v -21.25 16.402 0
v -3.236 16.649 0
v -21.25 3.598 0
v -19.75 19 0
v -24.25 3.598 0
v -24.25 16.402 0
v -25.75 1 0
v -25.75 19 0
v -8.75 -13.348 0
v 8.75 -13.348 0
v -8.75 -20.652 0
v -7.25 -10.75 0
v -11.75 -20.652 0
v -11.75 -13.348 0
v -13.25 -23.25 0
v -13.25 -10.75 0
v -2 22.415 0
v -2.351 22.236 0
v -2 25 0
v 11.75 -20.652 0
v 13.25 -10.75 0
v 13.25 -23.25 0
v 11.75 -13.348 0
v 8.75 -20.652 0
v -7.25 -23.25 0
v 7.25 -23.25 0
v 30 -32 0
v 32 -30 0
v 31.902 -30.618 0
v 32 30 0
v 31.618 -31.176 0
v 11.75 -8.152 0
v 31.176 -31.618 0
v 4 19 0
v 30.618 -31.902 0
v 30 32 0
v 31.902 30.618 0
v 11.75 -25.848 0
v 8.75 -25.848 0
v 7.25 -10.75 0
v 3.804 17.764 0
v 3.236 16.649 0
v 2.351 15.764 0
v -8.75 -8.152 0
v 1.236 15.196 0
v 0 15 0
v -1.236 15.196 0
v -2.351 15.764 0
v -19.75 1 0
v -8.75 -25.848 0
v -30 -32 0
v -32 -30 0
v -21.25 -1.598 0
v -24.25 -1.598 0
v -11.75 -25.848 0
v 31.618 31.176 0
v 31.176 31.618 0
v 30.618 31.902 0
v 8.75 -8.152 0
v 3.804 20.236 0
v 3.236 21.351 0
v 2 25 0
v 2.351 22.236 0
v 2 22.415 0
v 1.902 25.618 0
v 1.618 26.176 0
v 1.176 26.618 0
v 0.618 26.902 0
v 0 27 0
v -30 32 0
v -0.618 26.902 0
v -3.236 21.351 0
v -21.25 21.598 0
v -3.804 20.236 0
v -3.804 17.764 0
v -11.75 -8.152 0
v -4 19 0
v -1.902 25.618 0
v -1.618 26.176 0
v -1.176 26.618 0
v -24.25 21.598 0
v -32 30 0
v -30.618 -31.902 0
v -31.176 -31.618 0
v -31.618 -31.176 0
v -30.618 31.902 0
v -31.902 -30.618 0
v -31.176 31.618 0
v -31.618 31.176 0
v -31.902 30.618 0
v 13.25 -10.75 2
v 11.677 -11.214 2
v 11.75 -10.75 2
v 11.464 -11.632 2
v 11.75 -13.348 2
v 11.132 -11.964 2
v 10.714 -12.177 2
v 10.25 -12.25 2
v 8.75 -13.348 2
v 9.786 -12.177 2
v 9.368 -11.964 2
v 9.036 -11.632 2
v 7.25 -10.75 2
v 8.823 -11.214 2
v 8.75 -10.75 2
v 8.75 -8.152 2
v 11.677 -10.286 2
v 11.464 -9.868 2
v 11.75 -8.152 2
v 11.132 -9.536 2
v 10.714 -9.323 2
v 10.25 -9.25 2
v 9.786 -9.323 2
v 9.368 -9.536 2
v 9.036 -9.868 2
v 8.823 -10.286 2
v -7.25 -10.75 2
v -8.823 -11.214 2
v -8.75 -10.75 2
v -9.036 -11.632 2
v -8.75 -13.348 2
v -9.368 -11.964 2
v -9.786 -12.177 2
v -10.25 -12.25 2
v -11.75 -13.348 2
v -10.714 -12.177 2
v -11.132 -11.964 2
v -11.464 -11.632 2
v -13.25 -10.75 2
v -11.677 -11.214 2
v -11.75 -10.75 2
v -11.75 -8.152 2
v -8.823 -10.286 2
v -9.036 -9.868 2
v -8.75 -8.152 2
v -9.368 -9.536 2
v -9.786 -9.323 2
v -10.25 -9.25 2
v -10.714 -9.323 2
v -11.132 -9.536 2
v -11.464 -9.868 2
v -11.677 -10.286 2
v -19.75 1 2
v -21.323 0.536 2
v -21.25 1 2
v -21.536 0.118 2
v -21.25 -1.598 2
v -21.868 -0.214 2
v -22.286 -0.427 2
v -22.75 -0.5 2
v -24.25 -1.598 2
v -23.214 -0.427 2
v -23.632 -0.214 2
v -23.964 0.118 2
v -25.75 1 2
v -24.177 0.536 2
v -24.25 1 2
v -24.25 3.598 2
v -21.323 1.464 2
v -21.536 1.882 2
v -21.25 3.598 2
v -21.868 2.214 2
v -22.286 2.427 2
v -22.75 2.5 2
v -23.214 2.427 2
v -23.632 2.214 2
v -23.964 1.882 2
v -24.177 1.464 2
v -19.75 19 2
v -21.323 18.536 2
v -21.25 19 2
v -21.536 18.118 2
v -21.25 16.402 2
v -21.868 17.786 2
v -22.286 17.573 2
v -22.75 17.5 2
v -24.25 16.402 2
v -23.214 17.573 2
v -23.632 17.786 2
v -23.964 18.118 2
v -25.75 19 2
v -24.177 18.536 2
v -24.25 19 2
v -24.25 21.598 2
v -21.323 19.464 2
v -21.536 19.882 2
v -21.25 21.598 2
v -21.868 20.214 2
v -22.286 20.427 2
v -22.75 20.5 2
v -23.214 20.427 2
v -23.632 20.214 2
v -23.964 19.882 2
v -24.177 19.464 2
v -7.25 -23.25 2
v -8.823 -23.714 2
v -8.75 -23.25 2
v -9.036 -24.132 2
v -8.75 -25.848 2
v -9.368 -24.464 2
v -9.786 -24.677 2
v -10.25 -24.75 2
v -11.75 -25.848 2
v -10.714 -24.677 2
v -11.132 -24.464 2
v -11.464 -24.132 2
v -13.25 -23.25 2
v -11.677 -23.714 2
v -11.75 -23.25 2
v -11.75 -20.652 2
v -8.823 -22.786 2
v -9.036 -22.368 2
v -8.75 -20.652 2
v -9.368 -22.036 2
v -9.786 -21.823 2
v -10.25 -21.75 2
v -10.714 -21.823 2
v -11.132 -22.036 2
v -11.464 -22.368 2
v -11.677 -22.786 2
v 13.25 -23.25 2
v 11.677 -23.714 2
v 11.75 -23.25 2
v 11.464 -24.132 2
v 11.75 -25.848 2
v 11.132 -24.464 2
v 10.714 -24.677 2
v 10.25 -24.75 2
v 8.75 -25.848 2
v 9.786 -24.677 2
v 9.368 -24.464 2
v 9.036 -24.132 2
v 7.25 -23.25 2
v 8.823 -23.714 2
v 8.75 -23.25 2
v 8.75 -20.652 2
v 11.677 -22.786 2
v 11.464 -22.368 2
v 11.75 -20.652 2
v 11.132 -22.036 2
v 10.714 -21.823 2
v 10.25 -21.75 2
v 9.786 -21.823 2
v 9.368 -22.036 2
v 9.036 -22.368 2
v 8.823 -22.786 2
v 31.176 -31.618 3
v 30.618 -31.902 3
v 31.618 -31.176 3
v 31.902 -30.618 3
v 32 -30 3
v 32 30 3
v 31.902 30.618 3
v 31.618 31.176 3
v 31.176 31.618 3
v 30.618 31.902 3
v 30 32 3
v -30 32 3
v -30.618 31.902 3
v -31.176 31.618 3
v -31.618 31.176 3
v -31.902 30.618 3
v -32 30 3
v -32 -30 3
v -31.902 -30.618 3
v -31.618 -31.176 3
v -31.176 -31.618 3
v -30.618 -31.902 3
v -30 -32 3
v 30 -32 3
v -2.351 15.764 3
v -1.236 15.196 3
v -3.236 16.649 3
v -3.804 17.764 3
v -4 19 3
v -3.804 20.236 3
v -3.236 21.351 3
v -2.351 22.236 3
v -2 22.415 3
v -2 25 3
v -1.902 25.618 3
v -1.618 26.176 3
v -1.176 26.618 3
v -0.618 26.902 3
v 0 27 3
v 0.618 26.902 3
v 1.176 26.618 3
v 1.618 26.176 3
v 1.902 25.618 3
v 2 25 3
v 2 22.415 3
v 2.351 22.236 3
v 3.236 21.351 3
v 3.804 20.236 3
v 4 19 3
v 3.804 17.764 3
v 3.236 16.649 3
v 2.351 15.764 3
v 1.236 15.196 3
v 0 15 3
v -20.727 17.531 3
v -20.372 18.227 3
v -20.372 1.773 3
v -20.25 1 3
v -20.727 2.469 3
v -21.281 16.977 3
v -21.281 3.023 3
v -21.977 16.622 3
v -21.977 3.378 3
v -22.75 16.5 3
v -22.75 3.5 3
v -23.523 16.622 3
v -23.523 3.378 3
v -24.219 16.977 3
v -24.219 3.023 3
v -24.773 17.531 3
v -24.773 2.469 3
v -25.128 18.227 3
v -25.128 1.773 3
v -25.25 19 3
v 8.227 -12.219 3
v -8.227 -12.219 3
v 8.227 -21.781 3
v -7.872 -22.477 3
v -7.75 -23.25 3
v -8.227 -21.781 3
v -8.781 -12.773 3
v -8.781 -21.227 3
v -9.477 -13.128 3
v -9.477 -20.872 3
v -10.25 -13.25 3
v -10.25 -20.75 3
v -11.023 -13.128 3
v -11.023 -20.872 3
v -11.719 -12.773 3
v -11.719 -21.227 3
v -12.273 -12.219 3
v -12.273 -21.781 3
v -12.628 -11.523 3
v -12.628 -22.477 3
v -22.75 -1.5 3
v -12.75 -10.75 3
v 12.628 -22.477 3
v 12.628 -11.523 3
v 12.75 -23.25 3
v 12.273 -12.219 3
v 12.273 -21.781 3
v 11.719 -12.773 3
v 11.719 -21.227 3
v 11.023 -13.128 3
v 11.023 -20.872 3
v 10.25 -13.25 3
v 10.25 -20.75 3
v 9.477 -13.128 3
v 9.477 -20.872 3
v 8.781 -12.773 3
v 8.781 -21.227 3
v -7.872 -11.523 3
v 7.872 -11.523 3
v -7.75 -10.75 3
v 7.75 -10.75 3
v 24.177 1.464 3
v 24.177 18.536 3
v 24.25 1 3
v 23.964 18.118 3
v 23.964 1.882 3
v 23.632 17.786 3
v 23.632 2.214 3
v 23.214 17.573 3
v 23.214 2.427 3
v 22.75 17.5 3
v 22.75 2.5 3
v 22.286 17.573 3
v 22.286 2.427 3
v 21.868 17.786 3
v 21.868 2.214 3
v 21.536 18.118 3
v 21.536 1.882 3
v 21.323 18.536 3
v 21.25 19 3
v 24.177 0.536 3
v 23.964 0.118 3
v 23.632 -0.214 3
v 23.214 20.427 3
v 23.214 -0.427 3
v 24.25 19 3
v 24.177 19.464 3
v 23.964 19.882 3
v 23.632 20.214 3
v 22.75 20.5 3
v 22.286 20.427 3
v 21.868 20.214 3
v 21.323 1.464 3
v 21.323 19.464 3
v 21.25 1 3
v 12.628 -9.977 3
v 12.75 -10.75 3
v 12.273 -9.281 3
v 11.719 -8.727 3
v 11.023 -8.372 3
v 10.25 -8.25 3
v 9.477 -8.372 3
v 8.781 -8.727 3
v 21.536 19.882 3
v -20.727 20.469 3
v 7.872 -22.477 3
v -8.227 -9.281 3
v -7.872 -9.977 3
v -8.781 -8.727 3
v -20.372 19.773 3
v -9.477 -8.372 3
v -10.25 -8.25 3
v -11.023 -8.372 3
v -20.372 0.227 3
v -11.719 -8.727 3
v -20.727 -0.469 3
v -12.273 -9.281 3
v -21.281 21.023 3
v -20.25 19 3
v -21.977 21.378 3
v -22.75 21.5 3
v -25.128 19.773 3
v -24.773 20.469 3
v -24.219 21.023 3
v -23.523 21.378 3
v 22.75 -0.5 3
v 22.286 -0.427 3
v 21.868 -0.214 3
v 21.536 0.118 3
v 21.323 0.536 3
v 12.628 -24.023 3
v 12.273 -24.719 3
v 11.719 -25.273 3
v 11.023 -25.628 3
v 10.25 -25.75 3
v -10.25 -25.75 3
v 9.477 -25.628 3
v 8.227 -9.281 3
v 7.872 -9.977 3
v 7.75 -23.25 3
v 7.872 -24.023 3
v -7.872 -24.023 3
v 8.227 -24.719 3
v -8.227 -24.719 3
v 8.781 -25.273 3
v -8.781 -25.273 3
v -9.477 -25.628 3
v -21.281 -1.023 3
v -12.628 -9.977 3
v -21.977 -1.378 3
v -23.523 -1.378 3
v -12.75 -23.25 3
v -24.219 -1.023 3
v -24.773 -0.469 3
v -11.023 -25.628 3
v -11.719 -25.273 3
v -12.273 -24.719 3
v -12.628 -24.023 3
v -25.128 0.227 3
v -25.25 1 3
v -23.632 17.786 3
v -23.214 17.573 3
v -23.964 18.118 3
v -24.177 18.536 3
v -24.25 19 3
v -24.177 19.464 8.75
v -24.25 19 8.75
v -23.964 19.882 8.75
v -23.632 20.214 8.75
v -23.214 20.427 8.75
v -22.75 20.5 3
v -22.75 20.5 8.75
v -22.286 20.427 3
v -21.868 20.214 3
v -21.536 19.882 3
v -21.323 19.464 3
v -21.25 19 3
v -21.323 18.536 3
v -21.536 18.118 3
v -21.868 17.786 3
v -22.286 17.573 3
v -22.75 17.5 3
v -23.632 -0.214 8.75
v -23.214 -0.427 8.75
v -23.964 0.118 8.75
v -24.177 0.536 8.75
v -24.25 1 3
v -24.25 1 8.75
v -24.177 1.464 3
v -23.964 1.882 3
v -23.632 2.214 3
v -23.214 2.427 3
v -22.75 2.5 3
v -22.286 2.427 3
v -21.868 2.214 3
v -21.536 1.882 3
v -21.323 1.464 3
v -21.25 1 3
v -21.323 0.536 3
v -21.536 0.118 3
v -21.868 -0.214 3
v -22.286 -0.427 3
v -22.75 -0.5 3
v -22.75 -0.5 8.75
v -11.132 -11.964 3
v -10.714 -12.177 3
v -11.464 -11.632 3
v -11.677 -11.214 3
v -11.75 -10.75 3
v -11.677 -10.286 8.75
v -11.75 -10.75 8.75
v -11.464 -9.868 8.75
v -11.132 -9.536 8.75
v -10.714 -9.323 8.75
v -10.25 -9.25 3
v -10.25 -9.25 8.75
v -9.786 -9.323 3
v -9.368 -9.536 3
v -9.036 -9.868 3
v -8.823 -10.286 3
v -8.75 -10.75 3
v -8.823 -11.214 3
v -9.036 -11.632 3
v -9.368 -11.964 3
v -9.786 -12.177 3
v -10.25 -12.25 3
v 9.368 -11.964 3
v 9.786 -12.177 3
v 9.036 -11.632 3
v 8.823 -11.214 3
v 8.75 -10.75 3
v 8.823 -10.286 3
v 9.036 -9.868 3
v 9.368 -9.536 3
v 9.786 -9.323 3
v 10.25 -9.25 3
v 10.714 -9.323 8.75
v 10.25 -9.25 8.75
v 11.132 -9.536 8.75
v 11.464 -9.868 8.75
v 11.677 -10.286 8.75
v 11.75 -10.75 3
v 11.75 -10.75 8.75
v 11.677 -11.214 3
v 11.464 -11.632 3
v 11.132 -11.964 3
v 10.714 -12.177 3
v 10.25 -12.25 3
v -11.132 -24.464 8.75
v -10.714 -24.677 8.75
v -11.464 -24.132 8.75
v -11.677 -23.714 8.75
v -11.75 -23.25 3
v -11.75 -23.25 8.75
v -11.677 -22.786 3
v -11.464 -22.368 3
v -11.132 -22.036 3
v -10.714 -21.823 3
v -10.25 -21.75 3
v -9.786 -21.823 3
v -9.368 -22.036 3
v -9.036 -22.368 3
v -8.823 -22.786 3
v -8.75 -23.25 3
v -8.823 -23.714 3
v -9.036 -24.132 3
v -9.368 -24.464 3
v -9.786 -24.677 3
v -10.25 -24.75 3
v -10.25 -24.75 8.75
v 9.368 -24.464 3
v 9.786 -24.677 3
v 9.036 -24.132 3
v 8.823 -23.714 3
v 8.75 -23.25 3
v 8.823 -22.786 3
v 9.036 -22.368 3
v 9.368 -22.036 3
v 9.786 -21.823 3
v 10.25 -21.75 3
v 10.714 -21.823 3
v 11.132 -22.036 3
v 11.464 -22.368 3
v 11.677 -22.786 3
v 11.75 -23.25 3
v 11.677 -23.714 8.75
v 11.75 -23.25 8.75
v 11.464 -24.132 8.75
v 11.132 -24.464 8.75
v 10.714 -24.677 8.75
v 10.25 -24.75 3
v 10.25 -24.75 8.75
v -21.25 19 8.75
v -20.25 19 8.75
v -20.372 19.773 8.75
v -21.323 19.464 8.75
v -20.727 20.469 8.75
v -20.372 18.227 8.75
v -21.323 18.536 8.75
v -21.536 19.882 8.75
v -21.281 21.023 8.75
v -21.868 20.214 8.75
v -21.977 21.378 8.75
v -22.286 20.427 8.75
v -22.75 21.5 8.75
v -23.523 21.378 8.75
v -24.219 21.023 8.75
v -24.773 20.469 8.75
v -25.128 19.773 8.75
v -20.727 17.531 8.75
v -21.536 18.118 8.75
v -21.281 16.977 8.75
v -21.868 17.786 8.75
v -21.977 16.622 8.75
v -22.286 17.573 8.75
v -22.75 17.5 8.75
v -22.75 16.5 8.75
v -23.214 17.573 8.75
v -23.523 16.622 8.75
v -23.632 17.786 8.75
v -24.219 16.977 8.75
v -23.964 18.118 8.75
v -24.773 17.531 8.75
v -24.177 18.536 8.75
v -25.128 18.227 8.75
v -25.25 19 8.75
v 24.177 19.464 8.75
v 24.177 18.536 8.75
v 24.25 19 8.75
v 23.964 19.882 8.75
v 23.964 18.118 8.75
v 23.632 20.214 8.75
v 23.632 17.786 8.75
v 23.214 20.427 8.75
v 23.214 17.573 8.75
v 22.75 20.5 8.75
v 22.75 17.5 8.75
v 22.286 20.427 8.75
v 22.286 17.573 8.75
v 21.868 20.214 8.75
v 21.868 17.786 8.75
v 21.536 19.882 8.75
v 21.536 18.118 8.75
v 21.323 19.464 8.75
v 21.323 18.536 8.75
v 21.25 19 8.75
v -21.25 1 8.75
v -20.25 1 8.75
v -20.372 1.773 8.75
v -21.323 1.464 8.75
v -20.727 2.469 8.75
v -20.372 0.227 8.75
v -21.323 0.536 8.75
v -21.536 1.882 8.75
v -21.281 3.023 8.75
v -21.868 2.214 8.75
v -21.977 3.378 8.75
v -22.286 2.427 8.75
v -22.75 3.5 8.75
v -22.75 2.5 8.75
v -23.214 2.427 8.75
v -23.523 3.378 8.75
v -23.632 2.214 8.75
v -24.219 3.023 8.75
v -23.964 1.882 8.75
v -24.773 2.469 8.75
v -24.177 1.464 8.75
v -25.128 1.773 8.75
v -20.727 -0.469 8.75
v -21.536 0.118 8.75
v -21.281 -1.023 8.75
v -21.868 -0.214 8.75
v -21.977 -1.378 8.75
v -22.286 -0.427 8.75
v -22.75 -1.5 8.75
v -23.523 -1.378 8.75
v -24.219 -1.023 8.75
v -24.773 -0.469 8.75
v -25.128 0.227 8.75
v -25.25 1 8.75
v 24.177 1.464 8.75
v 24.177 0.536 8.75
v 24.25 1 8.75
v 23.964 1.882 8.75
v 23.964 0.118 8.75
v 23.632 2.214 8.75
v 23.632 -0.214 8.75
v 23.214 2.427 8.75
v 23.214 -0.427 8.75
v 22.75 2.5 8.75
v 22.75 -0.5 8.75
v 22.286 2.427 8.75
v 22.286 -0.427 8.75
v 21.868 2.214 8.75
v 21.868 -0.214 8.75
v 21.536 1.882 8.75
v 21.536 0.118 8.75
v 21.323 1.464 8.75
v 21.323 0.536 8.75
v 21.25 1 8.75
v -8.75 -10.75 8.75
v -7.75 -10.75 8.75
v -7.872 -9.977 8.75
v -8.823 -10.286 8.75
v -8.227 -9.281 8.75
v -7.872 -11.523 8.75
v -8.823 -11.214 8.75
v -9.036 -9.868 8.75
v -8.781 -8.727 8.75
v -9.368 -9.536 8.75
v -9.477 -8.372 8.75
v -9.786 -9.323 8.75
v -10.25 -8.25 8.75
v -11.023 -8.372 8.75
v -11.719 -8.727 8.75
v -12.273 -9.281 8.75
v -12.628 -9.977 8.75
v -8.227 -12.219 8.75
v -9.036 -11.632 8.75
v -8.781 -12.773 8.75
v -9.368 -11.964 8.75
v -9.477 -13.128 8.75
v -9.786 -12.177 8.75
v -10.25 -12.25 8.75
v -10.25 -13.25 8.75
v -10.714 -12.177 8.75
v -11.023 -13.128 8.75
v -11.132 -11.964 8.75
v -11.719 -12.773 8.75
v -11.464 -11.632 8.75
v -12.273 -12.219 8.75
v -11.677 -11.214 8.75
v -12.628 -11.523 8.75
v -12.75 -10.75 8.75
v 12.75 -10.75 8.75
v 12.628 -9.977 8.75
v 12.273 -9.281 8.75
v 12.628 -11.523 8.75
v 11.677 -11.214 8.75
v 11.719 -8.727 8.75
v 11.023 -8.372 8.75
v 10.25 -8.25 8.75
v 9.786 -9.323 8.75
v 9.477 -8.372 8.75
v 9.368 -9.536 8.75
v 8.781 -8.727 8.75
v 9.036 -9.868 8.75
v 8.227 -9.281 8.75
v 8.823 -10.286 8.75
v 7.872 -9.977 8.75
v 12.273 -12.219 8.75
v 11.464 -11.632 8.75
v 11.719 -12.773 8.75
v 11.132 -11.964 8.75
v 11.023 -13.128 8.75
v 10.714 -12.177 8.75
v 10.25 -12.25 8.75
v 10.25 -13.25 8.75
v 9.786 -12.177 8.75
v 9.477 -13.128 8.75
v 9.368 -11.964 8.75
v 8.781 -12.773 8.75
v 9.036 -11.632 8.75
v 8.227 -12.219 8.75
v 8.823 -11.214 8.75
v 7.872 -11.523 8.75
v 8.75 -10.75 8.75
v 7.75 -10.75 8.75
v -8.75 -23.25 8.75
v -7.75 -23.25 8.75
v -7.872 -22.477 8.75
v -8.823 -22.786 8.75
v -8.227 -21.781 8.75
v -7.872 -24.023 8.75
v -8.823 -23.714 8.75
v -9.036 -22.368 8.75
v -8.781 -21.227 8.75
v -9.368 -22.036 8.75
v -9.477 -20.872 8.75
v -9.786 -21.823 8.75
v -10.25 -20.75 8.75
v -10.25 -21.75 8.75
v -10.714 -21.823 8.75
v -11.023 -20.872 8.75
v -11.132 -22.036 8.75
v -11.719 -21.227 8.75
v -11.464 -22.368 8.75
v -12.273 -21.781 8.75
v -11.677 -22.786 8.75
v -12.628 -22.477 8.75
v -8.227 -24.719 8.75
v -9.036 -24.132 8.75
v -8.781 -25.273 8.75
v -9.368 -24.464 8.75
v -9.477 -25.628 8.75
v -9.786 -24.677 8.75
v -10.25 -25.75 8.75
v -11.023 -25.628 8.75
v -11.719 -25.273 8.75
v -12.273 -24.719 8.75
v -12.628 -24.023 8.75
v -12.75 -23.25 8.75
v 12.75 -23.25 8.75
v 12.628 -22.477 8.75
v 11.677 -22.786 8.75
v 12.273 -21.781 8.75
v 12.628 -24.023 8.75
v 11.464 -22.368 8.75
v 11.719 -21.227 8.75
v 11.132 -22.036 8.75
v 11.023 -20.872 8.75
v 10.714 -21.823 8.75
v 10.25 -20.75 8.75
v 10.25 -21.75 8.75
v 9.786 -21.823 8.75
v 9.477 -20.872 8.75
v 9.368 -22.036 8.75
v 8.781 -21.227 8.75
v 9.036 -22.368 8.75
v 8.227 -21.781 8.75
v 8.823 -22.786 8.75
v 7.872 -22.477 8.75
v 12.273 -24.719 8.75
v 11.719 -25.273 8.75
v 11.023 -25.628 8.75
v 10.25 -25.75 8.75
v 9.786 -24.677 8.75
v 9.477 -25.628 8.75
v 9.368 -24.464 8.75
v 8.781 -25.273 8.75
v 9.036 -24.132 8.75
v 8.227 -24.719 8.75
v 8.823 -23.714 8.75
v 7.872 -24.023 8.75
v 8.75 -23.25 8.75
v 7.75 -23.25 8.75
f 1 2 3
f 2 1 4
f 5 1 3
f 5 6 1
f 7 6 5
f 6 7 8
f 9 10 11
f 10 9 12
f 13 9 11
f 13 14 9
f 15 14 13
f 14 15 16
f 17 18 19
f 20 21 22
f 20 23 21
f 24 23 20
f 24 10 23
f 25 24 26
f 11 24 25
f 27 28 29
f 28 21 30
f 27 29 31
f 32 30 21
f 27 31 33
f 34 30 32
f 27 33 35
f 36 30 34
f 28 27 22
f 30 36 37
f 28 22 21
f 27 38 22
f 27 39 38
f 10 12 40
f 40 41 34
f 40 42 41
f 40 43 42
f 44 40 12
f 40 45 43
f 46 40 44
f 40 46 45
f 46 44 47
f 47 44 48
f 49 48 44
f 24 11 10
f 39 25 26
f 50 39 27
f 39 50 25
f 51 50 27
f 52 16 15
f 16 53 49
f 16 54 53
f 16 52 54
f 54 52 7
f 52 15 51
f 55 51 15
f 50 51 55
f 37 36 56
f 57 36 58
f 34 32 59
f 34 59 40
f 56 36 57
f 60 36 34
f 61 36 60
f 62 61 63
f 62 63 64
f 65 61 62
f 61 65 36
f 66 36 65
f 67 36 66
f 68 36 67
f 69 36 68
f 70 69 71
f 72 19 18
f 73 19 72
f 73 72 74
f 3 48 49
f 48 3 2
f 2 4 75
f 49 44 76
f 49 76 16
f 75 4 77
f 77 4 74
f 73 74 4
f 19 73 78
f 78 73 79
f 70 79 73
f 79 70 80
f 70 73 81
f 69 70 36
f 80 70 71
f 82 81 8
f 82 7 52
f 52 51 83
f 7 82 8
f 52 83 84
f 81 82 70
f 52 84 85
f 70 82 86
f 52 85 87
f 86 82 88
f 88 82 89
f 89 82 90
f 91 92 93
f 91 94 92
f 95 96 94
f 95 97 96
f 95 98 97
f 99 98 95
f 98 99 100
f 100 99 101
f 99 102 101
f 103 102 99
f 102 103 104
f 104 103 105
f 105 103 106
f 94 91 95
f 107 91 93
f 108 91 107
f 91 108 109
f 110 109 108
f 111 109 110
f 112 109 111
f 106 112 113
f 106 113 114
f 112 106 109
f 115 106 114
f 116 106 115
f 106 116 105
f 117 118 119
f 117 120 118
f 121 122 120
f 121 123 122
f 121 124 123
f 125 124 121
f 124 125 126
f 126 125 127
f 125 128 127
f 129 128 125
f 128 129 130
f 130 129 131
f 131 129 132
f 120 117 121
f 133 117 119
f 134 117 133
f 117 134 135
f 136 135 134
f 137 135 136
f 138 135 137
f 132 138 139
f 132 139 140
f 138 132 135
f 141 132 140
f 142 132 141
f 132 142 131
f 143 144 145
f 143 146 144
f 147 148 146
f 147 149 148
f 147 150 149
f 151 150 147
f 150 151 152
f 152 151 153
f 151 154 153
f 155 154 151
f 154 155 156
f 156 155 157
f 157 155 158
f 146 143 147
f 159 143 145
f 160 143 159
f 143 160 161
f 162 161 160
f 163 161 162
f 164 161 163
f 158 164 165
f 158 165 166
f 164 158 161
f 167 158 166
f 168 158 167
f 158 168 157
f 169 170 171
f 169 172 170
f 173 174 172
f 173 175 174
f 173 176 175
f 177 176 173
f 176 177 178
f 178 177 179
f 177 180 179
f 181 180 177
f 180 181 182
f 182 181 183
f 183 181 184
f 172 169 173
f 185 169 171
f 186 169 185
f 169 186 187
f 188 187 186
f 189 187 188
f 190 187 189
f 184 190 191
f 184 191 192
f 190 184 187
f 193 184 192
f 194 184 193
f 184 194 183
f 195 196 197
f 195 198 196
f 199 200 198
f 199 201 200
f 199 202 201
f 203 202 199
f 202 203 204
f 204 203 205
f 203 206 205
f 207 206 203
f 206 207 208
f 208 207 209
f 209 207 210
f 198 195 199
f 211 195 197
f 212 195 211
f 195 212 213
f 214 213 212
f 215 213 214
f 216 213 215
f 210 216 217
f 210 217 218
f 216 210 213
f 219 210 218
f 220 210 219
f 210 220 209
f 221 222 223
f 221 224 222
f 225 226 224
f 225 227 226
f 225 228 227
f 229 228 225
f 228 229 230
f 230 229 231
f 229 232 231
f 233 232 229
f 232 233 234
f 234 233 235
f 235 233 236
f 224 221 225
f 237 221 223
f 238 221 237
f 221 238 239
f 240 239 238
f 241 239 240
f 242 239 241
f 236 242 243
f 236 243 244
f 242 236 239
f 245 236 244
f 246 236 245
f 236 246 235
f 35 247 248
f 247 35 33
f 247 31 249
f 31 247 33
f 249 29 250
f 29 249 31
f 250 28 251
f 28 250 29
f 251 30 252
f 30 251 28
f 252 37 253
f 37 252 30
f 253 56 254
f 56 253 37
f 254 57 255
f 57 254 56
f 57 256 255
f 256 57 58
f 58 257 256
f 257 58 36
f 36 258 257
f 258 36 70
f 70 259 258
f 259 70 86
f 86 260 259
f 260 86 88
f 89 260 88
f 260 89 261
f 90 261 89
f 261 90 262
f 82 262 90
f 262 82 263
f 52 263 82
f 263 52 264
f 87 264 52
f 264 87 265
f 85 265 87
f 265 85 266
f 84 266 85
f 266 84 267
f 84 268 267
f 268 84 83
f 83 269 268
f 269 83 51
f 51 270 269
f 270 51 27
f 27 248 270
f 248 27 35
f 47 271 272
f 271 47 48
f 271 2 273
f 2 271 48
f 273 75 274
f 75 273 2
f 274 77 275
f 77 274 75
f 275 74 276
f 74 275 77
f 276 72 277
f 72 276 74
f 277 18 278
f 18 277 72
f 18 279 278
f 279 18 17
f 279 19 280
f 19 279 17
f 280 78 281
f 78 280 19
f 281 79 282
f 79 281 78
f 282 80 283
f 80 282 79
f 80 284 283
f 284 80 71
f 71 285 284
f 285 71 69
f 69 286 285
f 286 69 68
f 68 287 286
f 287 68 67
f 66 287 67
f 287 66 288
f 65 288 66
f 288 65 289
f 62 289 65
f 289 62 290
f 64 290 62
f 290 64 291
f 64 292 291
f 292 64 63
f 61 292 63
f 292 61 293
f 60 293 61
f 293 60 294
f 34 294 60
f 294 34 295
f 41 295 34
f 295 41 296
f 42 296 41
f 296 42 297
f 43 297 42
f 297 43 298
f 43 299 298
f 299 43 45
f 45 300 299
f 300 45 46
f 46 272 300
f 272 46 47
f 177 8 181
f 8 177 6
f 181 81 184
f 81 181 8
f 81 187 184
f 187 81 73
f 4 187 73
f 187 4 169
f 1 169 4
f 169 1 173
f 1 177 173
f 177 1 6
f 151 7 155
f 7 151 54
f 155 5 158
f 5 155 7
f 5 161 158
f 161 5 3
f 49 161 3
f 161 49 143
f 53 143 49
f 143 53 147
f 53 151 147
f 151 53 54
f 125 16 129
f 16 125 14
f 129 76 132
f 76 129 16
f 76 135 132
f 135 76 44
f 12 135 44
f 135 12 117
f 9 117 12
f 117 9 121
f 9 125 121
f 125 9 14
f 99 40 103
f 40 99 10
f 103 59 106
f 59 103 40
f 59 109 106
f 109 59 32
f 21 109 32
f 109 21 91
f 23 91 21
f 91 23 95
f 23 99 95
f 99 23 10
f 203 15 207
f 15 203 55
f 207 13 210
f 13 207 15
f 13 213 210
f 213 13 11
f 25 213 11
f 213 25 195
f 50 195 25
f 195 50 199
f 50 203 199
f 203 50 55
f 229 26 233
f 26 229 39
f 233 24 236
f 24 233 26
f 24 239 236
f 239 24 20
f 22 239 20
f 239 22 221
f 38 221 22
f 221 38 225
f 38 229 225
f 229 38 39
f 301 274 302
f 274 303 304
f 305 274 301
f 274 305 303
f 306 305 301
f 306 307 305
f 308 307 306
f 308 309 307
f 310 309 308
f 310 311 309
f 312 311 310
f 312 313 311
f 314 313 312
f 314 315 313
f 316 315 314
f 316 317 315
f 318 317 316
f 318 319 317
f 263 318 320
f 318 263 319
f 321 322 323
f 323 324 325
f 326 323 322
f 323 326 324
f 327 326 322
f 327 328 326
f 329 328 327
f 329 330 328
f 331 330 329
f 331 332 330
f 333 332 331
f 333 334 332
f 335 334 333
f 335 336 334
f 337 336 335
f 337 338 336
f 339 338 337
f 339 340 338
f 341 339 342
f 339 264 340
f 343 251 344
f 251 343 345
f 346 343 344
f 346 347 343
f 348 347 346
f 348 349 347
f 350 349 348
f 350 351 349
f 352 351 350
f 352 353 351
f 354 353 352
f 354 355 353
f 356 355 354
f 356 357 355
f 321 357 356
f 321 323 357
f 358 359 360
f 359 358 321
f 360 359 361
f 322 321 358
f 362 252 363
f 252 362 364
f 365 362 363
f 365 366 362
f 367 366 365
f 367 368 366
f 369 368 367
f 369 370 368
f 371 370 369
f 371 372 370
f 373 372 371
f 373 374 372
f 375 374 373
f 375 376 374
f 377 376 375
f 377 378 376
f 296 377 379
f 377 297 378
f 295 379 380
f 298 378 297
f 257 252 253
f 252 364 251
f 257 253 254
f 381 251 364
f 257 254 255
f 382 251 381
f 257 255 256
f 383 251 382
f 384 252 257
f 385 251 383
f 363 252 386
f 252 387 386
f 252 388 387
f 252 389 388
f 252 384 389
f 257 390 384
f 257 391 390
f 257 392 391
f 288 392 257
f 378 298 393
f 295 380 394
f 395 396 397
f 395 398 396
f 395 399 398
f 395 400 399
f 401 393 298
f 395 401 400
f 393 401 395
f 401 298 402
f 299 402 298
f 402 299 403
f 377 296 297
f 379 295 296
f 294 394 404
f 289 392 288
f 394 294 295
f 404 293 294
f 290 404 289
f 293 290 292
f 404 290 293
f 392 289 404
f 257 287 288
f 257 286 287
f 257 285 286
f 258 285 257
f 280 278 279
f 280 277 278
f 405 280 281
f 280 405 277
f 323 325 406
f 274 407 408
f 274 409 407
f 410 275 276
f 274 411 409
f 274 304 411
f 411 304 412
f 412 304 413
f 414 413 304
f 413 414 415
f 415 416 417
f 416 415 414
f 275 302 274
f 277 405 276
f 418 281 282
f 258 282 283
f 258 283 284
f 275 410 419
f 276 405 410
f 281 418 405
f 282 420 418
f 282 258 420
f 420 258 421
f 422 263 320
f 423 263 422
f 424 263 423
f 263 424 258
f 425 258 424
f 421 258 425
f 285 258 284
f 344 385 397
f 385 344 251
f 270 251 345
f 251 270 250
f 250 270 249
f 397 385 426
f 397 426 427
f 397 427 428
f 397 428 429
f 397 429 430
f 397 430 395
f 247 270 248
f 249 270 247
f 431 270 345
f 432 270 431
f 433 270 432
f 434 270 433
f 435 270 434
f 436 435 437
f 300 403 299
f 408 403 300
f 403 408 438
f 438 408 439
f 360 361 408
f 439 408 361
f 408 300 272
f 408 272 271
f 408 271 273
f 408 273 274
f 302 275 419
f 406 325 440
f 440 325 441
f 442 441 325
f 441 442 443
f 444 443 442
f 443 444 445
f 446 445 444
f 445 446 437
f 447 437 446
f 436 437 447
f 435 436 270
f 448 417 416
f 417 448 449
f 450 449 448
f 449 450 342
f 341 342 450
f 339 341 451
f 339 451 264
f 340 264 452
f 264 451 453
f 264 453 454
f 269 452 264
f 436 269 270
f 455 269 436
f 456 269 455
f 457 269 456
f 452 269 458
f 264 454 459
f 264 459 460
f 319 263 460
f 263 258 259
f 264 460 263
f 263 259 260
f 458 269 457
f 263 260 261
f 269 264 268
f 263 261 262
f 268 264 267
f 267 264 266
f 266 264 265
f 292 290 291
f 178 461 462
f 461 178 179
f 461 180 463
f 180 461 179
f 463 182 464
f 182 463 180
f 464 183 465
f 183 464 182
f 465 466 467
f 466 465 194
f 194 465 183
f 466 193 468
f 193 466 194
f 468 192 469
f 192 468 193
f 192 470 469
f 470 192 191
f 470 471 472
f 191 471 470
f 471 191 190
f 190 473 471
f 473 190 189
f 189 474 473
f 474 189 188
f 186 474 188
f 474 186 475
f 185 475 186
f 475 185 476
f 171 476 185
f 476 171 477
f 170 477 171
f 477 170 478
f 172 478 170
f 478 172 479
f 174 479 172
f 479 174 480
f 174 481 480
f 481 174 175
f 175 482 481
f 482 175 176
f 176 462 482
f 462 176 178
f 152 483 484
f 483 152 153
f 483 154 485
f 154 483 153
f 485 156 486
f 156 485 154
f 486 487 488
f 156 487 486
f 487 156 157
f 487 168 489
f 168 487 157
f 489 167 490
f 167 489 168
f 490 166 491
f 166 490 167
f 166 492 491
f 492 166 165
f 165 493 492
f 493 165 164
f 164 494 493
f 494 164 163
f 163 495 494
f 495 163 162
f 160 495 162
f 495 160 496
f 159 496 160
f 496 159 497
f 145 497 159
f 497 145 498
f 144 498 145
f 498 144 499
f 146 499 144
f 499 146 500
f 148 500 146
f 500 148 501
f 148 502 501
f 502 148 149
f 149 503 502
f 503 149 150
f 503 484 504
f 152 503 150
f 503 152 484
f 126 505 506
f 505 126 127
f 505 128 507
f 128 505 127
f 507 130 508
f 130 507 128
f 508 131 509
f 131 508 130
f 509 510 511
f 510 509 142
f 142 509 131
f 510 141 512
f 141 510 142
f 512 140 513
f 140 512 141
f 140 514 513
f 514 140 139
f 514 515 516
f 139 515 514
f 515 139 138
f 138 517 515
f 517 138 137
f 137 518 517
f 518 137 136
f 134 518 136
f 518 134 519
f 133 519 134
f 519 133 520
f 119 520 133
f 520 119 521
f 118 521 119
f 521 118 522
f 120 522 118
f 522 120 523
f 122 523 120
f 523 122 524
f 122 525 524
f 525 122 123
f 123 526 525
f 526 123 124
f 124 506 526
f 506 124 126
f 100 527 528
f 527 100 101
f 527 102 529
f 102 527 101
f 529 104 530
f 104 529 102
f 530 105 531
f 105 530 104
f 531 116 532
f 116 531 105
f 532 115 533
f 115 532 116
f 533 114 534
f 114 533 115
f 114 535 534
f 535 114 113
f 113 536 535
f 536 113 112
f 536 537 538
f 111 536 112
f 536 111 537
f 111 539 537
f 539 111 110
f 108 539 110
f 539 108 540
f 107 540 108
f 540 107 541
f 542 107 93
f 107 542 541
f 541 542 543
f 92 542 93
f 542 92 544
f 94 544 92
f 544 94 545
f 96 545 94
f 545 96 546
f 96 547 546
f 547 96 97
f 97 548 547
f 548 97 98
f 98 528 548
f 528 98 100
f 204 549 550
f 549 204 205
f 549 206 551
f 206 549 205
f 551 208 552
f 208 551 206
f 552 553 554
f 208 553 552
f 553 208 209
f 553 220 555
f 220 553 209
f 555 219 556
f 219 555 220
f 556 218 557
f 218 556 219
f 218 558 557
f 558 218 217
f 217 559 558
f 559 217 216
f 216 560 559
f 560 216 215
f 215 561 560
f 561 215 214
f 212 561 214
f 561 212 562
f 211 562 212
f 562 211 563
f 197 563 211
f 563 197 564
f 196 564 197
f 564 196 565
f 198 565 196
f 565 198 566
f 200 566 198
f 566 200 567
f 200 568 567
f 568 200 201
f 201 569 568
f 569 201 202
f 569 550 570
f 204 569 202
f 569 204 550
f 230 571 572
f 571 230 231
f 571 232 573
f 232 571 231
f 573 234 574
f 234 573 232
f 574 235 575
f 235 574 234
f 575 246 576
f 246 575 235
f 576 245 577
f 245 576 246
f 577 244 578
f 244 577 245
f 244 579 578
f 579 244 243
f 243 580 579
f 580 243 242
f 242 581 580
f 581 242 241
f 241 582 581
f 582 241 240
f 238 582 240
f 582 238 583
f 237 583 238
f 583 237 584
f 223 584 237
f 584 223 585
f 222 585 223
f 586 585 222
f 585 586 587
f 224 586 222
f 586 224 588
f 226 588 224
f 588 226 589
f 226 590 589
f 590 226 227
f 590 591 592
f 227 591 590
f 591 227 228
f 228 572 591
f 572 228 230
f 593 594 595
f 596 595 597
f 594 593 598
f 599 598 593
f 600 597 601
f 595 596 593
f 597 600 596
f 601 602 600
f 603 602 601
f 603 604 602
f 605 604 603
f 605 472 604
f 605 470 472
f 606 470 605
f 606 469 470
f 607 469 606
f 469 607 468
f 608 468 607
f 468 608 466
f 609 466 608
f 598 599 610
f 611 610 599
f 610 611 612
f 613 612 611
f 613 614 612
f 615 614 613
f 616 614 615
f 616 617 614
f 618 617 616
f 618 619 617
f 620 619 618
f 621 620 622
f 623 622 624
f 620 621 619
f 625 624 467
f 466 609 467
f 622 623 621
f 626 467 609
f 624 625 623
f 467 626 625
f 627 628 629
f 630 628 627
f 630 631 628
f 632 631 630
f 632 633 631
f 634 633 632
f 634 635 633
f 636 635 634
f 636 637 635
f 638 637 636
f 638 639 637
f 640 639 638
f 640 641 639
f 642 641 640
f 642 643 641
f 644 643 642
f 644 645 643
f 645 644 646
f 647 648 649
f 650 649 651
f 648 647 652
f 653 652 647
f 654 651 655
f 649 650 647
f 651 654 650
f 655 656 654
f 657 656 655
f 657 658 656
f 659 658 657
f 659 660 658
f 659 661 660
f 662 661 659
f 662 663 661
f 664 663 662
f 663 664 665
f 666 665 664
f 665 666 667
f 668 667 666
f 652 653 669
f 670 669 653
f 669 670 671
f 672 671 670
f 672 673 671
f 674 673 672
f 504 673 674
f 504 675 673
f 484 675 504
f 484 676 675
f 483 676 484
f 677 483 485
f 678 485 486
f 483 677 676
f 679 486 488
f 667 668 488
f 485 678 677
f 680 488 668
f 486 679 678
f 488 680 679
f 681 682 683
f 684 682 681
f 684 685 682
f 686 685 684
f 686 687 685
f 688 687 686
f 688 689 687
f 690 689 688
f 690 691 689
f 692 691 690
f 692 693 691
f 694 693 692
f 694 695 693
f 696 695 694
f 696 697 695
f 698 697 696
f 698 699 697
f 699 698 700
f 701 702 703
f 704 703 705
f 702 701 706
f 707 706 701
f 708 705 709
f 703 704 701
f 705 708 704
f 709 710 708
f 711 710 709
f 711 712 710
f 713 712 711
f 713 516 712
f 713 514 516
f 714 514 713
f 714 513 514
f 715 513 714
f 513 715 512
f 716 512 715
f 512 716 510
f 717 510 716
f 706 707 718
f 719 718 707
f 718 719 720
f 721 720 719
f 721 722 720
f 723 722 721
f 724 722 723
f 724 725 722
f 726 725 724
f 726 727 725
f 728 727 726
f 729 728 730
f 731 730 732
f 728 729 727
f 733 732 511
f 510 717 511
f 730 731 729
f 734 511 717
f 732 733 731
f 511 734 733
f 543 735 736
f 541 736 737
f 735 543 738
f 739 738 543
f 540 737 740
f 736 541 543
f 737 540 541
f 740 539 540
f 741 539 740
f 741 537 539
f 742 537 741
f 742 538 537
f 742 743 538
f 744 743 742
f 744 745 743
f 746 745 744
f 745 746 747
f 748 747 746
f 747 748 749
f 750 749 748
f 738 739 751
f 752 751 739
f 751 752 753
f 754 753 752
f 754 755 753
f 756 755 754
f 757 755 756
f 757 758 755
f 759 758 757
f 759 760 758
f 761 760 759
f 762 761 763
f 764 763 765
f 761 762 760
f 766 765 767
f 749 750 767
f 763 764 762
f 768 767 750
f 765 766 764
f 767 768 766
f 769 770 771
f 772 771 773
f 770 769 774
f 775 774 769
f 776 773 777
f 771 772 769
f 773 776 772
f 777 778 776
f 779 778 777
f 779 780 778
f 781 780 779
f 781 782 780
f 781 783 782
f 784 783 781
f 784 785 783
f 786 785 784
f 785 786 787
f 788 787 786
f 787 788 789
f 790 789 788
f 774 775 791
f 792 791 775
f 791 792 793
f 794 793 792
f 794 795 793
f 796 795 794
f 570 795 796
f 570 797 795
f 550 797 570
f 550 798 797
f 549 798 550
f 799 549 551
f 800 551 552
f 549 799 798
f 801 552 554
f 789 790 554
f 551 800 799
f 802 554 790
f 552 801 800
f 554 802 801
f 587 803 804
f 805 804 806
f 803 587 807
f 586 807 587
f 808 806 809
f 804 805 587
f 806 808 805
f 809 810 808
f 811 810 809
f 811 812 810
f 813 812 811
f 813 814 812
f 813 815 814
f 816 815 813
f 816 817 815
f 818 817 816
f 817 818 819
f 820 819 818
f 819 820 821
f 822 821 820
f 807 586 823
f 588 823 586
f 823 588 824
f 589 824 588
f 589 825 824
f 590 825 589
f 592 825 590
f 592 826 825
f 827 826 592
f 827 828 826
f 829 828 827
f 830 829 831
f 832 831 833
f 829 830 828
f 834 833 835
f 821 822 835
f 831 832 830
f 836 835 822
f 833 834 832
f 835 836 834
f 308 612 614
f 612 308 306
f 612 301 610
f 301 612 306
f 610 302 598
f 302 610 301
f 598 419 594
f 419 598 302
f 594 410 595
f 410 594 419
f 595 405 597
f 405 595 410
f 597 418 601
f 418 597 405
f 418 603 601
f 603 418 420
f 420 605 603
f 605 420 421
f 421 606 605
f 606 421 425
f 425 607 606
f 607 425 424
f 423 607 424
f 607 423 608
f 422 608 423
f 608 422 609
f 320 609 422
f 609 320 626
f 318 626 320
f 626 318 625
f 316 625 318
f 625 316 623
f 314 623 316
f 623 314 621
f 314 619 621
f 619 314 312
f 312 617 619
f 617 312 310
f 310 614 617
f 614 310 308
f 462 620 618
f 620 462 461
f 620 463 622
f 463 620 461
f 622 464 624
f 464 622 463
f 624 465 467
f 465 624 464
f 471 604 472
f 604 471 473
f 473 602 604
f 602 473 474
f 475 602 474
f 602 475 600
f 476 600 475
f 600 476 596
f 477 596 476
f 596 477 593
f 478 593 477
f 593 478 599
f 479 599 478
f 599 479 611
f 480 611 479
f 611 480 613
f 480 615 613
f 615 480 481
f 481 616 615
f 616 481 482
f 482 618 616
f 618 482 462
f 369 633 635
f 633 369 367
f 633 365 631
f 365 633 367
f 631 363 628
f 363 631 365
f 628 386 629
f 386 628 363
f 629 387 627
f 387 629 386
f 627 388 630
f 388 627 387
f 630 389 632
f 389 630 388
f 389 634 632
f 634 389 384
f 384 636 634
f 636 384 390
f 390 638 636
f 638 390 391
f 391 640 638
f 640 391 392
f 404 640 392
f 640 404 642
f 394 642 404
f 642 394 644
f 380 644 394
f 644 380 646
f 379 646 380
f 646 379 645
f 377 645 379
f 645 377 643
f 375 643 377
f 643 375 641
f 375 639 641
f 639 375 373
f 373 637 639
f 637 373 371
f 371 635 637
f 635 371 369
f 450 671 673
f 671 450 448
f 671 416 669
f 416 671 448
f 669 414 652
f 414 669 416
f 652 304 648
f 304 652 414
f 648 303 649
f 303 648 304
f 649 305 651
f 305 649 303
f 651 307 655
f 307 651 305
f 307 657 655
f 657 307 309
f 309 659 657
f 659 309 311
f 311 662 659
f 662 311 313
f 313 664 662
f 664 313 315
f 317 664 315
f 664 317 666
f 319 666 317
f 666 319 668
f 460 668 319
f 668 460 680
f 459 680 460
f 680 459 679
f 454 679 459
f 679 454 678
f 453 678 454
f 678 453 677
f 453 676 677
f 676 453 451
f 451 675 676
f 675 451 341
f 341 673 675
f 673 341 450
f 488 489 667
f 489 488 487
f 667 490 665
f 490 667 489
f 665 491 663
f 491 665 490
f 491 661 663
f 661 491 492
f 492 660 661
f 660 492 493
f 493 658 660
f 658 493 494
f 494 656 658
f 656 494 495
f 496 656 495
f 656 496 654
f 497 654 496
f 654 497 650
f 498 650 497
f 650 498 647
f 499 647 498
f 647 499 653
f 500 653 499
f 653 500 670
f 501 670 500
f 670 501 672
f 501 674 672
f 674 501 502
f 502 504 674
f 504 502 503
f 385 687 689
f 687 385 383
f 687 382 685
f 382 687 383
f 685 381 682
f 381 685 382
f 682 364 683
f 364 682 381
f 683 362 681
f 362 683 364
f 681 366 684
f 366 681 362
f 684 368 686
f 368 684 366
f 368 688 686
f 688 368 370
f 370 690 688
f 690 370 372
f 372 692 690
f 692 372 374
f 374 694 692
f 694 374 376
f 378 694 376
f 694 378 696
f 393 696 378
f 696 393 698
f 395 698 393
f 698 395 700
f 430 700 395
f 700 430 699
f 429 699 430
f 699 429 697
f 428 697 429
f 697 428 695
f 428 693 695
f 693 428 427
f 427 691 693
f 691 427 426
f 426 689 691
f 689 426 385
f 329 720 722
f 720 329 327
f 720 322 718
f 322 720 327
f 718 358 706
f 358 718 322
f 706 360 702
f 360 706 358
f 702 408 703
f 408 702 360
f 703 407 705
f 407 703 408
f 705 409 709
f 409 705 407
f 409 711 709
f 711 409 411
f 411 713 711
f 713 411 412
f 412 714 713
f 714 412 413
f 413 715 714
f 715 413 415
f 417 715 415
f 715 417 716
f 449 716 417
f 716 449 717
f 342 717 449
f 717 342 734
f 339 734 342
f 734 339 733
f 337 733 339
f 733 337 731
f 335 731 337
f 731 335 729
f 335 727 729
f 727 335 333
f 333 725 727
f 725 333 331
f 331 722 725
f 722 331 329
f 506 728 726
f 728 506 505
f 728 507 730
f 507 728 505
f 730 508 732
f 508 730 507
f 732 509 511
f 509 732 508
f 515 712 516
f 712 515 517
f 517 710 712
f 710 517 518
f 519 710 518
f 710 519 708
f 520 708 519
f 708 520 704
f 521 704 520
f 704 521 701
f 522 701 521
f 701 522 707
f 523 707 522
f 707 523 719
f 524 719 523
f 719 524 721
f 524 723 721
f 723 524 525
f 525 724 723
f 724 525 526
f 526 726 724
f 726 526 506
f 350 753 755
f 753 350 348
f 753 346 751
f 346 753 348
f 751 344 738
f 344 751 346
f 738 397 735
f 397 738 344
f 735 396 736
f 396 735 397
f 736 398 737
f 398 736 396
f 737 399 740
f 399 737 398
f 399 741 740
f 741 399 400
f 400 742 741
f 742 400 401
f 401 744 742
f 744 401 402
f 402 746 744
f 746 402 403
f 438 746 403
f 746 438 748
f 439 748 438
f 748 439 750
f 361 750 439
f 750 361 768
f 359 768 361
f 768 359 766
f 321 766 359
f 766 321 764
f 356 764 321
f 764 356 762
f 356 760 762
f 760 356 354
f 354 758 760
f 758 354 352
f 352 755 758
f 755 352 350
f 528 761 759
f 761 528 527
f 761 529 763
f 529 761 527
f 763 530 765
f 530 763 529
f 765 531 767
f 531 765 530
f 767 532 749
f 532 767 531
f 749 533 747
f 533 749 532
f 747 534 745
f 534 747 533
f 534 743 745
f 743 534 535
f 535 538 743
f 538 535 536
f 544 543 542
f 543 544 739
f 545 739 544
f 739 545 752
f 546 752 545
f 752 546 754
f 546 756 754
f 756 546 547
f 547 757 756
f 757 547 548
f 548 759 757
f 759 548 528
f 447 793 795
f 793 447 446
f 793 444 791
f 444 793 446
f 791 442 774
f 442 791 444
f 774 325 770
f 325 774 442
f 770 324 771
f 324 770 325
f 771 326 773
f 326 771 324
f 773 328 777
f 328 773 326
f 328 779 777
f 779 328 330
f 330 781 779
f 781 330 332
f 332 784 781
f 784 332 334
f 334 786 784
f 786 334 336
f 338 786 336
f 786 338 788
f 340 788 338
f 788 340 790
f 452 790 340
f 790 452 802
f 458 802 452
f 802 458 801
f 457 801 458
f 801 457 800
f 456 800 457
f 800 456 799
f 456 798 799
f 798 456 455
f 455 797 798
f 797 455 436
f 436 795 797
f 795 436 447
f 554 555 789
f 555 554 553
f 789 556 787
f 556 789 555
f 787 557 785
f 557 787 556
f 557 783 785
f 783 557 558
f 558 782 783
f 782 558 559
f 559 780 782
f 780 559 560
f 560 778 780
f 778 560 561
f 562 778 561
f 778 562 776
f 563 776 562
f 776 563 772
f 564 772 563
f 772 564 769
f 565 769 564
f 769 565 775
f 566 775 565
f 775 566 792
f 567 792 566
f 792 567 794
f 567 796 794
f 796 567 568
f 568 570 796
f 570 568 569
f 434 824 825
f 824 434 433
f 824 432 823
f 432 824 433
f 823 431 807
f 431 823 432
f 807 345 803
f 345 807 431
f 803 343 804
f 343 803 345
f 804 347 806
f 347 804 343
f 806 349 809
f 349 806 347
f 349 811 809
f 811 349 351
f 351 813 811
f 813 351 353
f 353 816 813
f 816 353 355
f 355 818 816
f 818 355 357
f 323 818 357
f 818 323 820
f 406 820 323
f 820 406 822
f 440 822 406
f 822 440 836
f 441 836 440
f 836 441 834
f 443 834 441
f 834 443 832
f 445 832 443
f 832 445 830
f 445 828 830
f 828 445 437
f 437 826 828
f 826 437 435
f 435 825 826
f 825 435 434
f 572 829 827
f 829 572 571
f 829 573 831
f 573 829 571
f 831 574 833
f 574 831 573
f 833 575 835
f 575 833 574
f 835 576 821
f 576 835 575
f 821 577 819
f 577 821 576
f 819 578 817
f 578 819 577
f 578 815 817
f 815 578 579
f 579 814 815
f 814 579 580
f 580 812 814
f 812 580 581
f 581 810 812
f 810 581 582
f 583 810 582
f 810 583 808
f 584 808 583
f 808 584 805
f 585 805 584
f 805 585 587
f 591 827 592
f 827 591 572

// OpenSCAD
/*
    Settings in mm

    US #6 Screw:
      head_diameter = 6
      shaft_diameter = 3
    US #8 Screw:
      head_diameter = 8
      shaft_diameter = 4
*/
hanger_screw_head_diameter = 8;
hanger_screw_shaft_diameter = 4;
nut_diameter = 6;  // vertex-to-vertex diameter
nut_height = 2;
standoff_id = 3;
standoff_od = 5;
standoff_screw_length = 8.75;  // below the head length

function base_measurements() = [60, 60];
function display_measurements() = [45.5 / 2, 18 / 2];
function thermometer_measurements() = [20.5 / 2, 12.5 / 2];
function display_position() = [0, 10, 0];
function thermometer_position() = [0, -17, 0];

$fn = 20;    

/*
    hanger
    
    Parameters:
    head_diameter: diameter of screw / bolt head.
    shaft_diameter: diameter of screw / bolt shaft.
*/
module hanger(head_diameter, shaft_diameter) {
    circle(d=shaft_diameter);
    translate([0, -shaft_diameter / 2, 0]) {
        square(shaft_diameter, center=true);
    }
    translate([0, -shaft_diameter * 1.5, 0]) {
        circle(d=head_diameter);
    }
}

/*
    donut

    Parameters:
    od: outer diameter
    id: inner diameter
*/
module donut(od, id) {
    difference() {
        circle(d=od);
        circle(d=id);
    }
}

/*
    displaced_circle

    Parameters:
    offset: [x, y, z] to translate
    d: diameter of circle
*/
module displaced_circle(offset, d, fn=0) {
    translate(offset) circle(d=d, $fn=fn);
}

/*
    displaced_donut

    Parameters:
    offset: [x, y, z] to translate
    od: diameter of outer circle
    id: diameter of inner circle
*/
module displaced_donut(offset, od, id) {
    translate(offset) donut(od, id);
}

/*
    display_hole_template

    Parameters:
    d: diameter of circle
    fn: number of render lines for circle
*/
module display_hole_template(d, fn=0) {
    p = display_measurements();
    x = p[0];
    y = p[1];
    displaced_circle([-x, y, 0], d, fn);
    displaced_circle([-x, -y, 0], d, fn);
}

/*
    display_standoff_template

    Parameters:
    od: outer diameter
    id: inner diameter
*/
module display_standoff_template(od, id) {
    p = display_measurements();
    x = p[0];
    y = p[1];
    displaced_donut([-x, y, 0], od, id);
    displaced_donut([-x, -y, 0], od, id);
    displaced_circle([x, y, 0], id, $fn);
    displaced_circle([x, -y, 0], id, $fn);
}    

/*
    thermometer_hole_template

    Parameters:
    d: diameter of hole
*/
module thermometer_hole_template(d, fn=0) {
    p = thermometer_measurements();
    x = p[0];
    y = p[1];
    for (offset = [[-x, y, 0], [-x, -y, 0], [x, y, 0], [x, -y, 0]]) {
        displaced_circle(offset, d, fn);
    }
}

/*
    thermometer_standoff_template

    Parameters:
    od: outer diameter
    id: inner diameter
*/
module thermometer_standoff_template(od, id) {
    p = thermometer_measurements();
    x = p[0];
    y = p[1];
    for (offset = [[-x, y, 0], [-x, -y, 0], [x, y, 0], [x, -y, 0]]) {
        displaced_donut(offset, od, id);
    }
}

/*
    standoffs

    Parameters:
    od: outer diameter
    id: inner diameter
*/
module standoffs(od, id) {
    translate(display_position()) display_standoff_template(standoff_od, standoff_id);
    translate(thermometer_position()) thermometer_standoff_template(standoff_od, standoff_id);
}

/*
    base

    2D base with hanger hole and PCB mounting holes

    Parameters:
    d: hole diameter
    fn: number of render lines for circle
*/
module base(d, fn) {
    p = base_measurements();
    difference() {
        minkowski() {
            square(p, center=true);
            circle(2);
        }
        translate([0, (p[1] / 2) - 5, 0]) hanger(hanger_screw_head_diameter, hanger_screw_shaft_diameter);
        translate(display_position()) display_hole_template(d, fn=fn);
        translate(thermometer_position()) thermometer_hole_template(d, fn=fn);
    }
}

/*
    base_nuts

    2D base with holes for nuts
*/
module base_nuts() {
    base(nut_diameter, 6);
}

/*
    base_passthru

    2D base with holes for passthroughs
*/
module base_passthru() {
    base(standoff_id, $fn);
}

/*
    plate

    3D render of entire plate
*/
module plate() {
    z1 = nut_height;
    z2 = 1;
    z3 = standoff_screw_length - (z1 + z2);
    
    linear_extrude(height=z1, center=false) base_nuts();
    translate([0, 0, z1]) linear_extrude(height=z2, center=false) base_passthru();
    translate([0, 0, z1 + z2]) linear_extrude(height=z3, center=false) standoffs();
}

plate();
